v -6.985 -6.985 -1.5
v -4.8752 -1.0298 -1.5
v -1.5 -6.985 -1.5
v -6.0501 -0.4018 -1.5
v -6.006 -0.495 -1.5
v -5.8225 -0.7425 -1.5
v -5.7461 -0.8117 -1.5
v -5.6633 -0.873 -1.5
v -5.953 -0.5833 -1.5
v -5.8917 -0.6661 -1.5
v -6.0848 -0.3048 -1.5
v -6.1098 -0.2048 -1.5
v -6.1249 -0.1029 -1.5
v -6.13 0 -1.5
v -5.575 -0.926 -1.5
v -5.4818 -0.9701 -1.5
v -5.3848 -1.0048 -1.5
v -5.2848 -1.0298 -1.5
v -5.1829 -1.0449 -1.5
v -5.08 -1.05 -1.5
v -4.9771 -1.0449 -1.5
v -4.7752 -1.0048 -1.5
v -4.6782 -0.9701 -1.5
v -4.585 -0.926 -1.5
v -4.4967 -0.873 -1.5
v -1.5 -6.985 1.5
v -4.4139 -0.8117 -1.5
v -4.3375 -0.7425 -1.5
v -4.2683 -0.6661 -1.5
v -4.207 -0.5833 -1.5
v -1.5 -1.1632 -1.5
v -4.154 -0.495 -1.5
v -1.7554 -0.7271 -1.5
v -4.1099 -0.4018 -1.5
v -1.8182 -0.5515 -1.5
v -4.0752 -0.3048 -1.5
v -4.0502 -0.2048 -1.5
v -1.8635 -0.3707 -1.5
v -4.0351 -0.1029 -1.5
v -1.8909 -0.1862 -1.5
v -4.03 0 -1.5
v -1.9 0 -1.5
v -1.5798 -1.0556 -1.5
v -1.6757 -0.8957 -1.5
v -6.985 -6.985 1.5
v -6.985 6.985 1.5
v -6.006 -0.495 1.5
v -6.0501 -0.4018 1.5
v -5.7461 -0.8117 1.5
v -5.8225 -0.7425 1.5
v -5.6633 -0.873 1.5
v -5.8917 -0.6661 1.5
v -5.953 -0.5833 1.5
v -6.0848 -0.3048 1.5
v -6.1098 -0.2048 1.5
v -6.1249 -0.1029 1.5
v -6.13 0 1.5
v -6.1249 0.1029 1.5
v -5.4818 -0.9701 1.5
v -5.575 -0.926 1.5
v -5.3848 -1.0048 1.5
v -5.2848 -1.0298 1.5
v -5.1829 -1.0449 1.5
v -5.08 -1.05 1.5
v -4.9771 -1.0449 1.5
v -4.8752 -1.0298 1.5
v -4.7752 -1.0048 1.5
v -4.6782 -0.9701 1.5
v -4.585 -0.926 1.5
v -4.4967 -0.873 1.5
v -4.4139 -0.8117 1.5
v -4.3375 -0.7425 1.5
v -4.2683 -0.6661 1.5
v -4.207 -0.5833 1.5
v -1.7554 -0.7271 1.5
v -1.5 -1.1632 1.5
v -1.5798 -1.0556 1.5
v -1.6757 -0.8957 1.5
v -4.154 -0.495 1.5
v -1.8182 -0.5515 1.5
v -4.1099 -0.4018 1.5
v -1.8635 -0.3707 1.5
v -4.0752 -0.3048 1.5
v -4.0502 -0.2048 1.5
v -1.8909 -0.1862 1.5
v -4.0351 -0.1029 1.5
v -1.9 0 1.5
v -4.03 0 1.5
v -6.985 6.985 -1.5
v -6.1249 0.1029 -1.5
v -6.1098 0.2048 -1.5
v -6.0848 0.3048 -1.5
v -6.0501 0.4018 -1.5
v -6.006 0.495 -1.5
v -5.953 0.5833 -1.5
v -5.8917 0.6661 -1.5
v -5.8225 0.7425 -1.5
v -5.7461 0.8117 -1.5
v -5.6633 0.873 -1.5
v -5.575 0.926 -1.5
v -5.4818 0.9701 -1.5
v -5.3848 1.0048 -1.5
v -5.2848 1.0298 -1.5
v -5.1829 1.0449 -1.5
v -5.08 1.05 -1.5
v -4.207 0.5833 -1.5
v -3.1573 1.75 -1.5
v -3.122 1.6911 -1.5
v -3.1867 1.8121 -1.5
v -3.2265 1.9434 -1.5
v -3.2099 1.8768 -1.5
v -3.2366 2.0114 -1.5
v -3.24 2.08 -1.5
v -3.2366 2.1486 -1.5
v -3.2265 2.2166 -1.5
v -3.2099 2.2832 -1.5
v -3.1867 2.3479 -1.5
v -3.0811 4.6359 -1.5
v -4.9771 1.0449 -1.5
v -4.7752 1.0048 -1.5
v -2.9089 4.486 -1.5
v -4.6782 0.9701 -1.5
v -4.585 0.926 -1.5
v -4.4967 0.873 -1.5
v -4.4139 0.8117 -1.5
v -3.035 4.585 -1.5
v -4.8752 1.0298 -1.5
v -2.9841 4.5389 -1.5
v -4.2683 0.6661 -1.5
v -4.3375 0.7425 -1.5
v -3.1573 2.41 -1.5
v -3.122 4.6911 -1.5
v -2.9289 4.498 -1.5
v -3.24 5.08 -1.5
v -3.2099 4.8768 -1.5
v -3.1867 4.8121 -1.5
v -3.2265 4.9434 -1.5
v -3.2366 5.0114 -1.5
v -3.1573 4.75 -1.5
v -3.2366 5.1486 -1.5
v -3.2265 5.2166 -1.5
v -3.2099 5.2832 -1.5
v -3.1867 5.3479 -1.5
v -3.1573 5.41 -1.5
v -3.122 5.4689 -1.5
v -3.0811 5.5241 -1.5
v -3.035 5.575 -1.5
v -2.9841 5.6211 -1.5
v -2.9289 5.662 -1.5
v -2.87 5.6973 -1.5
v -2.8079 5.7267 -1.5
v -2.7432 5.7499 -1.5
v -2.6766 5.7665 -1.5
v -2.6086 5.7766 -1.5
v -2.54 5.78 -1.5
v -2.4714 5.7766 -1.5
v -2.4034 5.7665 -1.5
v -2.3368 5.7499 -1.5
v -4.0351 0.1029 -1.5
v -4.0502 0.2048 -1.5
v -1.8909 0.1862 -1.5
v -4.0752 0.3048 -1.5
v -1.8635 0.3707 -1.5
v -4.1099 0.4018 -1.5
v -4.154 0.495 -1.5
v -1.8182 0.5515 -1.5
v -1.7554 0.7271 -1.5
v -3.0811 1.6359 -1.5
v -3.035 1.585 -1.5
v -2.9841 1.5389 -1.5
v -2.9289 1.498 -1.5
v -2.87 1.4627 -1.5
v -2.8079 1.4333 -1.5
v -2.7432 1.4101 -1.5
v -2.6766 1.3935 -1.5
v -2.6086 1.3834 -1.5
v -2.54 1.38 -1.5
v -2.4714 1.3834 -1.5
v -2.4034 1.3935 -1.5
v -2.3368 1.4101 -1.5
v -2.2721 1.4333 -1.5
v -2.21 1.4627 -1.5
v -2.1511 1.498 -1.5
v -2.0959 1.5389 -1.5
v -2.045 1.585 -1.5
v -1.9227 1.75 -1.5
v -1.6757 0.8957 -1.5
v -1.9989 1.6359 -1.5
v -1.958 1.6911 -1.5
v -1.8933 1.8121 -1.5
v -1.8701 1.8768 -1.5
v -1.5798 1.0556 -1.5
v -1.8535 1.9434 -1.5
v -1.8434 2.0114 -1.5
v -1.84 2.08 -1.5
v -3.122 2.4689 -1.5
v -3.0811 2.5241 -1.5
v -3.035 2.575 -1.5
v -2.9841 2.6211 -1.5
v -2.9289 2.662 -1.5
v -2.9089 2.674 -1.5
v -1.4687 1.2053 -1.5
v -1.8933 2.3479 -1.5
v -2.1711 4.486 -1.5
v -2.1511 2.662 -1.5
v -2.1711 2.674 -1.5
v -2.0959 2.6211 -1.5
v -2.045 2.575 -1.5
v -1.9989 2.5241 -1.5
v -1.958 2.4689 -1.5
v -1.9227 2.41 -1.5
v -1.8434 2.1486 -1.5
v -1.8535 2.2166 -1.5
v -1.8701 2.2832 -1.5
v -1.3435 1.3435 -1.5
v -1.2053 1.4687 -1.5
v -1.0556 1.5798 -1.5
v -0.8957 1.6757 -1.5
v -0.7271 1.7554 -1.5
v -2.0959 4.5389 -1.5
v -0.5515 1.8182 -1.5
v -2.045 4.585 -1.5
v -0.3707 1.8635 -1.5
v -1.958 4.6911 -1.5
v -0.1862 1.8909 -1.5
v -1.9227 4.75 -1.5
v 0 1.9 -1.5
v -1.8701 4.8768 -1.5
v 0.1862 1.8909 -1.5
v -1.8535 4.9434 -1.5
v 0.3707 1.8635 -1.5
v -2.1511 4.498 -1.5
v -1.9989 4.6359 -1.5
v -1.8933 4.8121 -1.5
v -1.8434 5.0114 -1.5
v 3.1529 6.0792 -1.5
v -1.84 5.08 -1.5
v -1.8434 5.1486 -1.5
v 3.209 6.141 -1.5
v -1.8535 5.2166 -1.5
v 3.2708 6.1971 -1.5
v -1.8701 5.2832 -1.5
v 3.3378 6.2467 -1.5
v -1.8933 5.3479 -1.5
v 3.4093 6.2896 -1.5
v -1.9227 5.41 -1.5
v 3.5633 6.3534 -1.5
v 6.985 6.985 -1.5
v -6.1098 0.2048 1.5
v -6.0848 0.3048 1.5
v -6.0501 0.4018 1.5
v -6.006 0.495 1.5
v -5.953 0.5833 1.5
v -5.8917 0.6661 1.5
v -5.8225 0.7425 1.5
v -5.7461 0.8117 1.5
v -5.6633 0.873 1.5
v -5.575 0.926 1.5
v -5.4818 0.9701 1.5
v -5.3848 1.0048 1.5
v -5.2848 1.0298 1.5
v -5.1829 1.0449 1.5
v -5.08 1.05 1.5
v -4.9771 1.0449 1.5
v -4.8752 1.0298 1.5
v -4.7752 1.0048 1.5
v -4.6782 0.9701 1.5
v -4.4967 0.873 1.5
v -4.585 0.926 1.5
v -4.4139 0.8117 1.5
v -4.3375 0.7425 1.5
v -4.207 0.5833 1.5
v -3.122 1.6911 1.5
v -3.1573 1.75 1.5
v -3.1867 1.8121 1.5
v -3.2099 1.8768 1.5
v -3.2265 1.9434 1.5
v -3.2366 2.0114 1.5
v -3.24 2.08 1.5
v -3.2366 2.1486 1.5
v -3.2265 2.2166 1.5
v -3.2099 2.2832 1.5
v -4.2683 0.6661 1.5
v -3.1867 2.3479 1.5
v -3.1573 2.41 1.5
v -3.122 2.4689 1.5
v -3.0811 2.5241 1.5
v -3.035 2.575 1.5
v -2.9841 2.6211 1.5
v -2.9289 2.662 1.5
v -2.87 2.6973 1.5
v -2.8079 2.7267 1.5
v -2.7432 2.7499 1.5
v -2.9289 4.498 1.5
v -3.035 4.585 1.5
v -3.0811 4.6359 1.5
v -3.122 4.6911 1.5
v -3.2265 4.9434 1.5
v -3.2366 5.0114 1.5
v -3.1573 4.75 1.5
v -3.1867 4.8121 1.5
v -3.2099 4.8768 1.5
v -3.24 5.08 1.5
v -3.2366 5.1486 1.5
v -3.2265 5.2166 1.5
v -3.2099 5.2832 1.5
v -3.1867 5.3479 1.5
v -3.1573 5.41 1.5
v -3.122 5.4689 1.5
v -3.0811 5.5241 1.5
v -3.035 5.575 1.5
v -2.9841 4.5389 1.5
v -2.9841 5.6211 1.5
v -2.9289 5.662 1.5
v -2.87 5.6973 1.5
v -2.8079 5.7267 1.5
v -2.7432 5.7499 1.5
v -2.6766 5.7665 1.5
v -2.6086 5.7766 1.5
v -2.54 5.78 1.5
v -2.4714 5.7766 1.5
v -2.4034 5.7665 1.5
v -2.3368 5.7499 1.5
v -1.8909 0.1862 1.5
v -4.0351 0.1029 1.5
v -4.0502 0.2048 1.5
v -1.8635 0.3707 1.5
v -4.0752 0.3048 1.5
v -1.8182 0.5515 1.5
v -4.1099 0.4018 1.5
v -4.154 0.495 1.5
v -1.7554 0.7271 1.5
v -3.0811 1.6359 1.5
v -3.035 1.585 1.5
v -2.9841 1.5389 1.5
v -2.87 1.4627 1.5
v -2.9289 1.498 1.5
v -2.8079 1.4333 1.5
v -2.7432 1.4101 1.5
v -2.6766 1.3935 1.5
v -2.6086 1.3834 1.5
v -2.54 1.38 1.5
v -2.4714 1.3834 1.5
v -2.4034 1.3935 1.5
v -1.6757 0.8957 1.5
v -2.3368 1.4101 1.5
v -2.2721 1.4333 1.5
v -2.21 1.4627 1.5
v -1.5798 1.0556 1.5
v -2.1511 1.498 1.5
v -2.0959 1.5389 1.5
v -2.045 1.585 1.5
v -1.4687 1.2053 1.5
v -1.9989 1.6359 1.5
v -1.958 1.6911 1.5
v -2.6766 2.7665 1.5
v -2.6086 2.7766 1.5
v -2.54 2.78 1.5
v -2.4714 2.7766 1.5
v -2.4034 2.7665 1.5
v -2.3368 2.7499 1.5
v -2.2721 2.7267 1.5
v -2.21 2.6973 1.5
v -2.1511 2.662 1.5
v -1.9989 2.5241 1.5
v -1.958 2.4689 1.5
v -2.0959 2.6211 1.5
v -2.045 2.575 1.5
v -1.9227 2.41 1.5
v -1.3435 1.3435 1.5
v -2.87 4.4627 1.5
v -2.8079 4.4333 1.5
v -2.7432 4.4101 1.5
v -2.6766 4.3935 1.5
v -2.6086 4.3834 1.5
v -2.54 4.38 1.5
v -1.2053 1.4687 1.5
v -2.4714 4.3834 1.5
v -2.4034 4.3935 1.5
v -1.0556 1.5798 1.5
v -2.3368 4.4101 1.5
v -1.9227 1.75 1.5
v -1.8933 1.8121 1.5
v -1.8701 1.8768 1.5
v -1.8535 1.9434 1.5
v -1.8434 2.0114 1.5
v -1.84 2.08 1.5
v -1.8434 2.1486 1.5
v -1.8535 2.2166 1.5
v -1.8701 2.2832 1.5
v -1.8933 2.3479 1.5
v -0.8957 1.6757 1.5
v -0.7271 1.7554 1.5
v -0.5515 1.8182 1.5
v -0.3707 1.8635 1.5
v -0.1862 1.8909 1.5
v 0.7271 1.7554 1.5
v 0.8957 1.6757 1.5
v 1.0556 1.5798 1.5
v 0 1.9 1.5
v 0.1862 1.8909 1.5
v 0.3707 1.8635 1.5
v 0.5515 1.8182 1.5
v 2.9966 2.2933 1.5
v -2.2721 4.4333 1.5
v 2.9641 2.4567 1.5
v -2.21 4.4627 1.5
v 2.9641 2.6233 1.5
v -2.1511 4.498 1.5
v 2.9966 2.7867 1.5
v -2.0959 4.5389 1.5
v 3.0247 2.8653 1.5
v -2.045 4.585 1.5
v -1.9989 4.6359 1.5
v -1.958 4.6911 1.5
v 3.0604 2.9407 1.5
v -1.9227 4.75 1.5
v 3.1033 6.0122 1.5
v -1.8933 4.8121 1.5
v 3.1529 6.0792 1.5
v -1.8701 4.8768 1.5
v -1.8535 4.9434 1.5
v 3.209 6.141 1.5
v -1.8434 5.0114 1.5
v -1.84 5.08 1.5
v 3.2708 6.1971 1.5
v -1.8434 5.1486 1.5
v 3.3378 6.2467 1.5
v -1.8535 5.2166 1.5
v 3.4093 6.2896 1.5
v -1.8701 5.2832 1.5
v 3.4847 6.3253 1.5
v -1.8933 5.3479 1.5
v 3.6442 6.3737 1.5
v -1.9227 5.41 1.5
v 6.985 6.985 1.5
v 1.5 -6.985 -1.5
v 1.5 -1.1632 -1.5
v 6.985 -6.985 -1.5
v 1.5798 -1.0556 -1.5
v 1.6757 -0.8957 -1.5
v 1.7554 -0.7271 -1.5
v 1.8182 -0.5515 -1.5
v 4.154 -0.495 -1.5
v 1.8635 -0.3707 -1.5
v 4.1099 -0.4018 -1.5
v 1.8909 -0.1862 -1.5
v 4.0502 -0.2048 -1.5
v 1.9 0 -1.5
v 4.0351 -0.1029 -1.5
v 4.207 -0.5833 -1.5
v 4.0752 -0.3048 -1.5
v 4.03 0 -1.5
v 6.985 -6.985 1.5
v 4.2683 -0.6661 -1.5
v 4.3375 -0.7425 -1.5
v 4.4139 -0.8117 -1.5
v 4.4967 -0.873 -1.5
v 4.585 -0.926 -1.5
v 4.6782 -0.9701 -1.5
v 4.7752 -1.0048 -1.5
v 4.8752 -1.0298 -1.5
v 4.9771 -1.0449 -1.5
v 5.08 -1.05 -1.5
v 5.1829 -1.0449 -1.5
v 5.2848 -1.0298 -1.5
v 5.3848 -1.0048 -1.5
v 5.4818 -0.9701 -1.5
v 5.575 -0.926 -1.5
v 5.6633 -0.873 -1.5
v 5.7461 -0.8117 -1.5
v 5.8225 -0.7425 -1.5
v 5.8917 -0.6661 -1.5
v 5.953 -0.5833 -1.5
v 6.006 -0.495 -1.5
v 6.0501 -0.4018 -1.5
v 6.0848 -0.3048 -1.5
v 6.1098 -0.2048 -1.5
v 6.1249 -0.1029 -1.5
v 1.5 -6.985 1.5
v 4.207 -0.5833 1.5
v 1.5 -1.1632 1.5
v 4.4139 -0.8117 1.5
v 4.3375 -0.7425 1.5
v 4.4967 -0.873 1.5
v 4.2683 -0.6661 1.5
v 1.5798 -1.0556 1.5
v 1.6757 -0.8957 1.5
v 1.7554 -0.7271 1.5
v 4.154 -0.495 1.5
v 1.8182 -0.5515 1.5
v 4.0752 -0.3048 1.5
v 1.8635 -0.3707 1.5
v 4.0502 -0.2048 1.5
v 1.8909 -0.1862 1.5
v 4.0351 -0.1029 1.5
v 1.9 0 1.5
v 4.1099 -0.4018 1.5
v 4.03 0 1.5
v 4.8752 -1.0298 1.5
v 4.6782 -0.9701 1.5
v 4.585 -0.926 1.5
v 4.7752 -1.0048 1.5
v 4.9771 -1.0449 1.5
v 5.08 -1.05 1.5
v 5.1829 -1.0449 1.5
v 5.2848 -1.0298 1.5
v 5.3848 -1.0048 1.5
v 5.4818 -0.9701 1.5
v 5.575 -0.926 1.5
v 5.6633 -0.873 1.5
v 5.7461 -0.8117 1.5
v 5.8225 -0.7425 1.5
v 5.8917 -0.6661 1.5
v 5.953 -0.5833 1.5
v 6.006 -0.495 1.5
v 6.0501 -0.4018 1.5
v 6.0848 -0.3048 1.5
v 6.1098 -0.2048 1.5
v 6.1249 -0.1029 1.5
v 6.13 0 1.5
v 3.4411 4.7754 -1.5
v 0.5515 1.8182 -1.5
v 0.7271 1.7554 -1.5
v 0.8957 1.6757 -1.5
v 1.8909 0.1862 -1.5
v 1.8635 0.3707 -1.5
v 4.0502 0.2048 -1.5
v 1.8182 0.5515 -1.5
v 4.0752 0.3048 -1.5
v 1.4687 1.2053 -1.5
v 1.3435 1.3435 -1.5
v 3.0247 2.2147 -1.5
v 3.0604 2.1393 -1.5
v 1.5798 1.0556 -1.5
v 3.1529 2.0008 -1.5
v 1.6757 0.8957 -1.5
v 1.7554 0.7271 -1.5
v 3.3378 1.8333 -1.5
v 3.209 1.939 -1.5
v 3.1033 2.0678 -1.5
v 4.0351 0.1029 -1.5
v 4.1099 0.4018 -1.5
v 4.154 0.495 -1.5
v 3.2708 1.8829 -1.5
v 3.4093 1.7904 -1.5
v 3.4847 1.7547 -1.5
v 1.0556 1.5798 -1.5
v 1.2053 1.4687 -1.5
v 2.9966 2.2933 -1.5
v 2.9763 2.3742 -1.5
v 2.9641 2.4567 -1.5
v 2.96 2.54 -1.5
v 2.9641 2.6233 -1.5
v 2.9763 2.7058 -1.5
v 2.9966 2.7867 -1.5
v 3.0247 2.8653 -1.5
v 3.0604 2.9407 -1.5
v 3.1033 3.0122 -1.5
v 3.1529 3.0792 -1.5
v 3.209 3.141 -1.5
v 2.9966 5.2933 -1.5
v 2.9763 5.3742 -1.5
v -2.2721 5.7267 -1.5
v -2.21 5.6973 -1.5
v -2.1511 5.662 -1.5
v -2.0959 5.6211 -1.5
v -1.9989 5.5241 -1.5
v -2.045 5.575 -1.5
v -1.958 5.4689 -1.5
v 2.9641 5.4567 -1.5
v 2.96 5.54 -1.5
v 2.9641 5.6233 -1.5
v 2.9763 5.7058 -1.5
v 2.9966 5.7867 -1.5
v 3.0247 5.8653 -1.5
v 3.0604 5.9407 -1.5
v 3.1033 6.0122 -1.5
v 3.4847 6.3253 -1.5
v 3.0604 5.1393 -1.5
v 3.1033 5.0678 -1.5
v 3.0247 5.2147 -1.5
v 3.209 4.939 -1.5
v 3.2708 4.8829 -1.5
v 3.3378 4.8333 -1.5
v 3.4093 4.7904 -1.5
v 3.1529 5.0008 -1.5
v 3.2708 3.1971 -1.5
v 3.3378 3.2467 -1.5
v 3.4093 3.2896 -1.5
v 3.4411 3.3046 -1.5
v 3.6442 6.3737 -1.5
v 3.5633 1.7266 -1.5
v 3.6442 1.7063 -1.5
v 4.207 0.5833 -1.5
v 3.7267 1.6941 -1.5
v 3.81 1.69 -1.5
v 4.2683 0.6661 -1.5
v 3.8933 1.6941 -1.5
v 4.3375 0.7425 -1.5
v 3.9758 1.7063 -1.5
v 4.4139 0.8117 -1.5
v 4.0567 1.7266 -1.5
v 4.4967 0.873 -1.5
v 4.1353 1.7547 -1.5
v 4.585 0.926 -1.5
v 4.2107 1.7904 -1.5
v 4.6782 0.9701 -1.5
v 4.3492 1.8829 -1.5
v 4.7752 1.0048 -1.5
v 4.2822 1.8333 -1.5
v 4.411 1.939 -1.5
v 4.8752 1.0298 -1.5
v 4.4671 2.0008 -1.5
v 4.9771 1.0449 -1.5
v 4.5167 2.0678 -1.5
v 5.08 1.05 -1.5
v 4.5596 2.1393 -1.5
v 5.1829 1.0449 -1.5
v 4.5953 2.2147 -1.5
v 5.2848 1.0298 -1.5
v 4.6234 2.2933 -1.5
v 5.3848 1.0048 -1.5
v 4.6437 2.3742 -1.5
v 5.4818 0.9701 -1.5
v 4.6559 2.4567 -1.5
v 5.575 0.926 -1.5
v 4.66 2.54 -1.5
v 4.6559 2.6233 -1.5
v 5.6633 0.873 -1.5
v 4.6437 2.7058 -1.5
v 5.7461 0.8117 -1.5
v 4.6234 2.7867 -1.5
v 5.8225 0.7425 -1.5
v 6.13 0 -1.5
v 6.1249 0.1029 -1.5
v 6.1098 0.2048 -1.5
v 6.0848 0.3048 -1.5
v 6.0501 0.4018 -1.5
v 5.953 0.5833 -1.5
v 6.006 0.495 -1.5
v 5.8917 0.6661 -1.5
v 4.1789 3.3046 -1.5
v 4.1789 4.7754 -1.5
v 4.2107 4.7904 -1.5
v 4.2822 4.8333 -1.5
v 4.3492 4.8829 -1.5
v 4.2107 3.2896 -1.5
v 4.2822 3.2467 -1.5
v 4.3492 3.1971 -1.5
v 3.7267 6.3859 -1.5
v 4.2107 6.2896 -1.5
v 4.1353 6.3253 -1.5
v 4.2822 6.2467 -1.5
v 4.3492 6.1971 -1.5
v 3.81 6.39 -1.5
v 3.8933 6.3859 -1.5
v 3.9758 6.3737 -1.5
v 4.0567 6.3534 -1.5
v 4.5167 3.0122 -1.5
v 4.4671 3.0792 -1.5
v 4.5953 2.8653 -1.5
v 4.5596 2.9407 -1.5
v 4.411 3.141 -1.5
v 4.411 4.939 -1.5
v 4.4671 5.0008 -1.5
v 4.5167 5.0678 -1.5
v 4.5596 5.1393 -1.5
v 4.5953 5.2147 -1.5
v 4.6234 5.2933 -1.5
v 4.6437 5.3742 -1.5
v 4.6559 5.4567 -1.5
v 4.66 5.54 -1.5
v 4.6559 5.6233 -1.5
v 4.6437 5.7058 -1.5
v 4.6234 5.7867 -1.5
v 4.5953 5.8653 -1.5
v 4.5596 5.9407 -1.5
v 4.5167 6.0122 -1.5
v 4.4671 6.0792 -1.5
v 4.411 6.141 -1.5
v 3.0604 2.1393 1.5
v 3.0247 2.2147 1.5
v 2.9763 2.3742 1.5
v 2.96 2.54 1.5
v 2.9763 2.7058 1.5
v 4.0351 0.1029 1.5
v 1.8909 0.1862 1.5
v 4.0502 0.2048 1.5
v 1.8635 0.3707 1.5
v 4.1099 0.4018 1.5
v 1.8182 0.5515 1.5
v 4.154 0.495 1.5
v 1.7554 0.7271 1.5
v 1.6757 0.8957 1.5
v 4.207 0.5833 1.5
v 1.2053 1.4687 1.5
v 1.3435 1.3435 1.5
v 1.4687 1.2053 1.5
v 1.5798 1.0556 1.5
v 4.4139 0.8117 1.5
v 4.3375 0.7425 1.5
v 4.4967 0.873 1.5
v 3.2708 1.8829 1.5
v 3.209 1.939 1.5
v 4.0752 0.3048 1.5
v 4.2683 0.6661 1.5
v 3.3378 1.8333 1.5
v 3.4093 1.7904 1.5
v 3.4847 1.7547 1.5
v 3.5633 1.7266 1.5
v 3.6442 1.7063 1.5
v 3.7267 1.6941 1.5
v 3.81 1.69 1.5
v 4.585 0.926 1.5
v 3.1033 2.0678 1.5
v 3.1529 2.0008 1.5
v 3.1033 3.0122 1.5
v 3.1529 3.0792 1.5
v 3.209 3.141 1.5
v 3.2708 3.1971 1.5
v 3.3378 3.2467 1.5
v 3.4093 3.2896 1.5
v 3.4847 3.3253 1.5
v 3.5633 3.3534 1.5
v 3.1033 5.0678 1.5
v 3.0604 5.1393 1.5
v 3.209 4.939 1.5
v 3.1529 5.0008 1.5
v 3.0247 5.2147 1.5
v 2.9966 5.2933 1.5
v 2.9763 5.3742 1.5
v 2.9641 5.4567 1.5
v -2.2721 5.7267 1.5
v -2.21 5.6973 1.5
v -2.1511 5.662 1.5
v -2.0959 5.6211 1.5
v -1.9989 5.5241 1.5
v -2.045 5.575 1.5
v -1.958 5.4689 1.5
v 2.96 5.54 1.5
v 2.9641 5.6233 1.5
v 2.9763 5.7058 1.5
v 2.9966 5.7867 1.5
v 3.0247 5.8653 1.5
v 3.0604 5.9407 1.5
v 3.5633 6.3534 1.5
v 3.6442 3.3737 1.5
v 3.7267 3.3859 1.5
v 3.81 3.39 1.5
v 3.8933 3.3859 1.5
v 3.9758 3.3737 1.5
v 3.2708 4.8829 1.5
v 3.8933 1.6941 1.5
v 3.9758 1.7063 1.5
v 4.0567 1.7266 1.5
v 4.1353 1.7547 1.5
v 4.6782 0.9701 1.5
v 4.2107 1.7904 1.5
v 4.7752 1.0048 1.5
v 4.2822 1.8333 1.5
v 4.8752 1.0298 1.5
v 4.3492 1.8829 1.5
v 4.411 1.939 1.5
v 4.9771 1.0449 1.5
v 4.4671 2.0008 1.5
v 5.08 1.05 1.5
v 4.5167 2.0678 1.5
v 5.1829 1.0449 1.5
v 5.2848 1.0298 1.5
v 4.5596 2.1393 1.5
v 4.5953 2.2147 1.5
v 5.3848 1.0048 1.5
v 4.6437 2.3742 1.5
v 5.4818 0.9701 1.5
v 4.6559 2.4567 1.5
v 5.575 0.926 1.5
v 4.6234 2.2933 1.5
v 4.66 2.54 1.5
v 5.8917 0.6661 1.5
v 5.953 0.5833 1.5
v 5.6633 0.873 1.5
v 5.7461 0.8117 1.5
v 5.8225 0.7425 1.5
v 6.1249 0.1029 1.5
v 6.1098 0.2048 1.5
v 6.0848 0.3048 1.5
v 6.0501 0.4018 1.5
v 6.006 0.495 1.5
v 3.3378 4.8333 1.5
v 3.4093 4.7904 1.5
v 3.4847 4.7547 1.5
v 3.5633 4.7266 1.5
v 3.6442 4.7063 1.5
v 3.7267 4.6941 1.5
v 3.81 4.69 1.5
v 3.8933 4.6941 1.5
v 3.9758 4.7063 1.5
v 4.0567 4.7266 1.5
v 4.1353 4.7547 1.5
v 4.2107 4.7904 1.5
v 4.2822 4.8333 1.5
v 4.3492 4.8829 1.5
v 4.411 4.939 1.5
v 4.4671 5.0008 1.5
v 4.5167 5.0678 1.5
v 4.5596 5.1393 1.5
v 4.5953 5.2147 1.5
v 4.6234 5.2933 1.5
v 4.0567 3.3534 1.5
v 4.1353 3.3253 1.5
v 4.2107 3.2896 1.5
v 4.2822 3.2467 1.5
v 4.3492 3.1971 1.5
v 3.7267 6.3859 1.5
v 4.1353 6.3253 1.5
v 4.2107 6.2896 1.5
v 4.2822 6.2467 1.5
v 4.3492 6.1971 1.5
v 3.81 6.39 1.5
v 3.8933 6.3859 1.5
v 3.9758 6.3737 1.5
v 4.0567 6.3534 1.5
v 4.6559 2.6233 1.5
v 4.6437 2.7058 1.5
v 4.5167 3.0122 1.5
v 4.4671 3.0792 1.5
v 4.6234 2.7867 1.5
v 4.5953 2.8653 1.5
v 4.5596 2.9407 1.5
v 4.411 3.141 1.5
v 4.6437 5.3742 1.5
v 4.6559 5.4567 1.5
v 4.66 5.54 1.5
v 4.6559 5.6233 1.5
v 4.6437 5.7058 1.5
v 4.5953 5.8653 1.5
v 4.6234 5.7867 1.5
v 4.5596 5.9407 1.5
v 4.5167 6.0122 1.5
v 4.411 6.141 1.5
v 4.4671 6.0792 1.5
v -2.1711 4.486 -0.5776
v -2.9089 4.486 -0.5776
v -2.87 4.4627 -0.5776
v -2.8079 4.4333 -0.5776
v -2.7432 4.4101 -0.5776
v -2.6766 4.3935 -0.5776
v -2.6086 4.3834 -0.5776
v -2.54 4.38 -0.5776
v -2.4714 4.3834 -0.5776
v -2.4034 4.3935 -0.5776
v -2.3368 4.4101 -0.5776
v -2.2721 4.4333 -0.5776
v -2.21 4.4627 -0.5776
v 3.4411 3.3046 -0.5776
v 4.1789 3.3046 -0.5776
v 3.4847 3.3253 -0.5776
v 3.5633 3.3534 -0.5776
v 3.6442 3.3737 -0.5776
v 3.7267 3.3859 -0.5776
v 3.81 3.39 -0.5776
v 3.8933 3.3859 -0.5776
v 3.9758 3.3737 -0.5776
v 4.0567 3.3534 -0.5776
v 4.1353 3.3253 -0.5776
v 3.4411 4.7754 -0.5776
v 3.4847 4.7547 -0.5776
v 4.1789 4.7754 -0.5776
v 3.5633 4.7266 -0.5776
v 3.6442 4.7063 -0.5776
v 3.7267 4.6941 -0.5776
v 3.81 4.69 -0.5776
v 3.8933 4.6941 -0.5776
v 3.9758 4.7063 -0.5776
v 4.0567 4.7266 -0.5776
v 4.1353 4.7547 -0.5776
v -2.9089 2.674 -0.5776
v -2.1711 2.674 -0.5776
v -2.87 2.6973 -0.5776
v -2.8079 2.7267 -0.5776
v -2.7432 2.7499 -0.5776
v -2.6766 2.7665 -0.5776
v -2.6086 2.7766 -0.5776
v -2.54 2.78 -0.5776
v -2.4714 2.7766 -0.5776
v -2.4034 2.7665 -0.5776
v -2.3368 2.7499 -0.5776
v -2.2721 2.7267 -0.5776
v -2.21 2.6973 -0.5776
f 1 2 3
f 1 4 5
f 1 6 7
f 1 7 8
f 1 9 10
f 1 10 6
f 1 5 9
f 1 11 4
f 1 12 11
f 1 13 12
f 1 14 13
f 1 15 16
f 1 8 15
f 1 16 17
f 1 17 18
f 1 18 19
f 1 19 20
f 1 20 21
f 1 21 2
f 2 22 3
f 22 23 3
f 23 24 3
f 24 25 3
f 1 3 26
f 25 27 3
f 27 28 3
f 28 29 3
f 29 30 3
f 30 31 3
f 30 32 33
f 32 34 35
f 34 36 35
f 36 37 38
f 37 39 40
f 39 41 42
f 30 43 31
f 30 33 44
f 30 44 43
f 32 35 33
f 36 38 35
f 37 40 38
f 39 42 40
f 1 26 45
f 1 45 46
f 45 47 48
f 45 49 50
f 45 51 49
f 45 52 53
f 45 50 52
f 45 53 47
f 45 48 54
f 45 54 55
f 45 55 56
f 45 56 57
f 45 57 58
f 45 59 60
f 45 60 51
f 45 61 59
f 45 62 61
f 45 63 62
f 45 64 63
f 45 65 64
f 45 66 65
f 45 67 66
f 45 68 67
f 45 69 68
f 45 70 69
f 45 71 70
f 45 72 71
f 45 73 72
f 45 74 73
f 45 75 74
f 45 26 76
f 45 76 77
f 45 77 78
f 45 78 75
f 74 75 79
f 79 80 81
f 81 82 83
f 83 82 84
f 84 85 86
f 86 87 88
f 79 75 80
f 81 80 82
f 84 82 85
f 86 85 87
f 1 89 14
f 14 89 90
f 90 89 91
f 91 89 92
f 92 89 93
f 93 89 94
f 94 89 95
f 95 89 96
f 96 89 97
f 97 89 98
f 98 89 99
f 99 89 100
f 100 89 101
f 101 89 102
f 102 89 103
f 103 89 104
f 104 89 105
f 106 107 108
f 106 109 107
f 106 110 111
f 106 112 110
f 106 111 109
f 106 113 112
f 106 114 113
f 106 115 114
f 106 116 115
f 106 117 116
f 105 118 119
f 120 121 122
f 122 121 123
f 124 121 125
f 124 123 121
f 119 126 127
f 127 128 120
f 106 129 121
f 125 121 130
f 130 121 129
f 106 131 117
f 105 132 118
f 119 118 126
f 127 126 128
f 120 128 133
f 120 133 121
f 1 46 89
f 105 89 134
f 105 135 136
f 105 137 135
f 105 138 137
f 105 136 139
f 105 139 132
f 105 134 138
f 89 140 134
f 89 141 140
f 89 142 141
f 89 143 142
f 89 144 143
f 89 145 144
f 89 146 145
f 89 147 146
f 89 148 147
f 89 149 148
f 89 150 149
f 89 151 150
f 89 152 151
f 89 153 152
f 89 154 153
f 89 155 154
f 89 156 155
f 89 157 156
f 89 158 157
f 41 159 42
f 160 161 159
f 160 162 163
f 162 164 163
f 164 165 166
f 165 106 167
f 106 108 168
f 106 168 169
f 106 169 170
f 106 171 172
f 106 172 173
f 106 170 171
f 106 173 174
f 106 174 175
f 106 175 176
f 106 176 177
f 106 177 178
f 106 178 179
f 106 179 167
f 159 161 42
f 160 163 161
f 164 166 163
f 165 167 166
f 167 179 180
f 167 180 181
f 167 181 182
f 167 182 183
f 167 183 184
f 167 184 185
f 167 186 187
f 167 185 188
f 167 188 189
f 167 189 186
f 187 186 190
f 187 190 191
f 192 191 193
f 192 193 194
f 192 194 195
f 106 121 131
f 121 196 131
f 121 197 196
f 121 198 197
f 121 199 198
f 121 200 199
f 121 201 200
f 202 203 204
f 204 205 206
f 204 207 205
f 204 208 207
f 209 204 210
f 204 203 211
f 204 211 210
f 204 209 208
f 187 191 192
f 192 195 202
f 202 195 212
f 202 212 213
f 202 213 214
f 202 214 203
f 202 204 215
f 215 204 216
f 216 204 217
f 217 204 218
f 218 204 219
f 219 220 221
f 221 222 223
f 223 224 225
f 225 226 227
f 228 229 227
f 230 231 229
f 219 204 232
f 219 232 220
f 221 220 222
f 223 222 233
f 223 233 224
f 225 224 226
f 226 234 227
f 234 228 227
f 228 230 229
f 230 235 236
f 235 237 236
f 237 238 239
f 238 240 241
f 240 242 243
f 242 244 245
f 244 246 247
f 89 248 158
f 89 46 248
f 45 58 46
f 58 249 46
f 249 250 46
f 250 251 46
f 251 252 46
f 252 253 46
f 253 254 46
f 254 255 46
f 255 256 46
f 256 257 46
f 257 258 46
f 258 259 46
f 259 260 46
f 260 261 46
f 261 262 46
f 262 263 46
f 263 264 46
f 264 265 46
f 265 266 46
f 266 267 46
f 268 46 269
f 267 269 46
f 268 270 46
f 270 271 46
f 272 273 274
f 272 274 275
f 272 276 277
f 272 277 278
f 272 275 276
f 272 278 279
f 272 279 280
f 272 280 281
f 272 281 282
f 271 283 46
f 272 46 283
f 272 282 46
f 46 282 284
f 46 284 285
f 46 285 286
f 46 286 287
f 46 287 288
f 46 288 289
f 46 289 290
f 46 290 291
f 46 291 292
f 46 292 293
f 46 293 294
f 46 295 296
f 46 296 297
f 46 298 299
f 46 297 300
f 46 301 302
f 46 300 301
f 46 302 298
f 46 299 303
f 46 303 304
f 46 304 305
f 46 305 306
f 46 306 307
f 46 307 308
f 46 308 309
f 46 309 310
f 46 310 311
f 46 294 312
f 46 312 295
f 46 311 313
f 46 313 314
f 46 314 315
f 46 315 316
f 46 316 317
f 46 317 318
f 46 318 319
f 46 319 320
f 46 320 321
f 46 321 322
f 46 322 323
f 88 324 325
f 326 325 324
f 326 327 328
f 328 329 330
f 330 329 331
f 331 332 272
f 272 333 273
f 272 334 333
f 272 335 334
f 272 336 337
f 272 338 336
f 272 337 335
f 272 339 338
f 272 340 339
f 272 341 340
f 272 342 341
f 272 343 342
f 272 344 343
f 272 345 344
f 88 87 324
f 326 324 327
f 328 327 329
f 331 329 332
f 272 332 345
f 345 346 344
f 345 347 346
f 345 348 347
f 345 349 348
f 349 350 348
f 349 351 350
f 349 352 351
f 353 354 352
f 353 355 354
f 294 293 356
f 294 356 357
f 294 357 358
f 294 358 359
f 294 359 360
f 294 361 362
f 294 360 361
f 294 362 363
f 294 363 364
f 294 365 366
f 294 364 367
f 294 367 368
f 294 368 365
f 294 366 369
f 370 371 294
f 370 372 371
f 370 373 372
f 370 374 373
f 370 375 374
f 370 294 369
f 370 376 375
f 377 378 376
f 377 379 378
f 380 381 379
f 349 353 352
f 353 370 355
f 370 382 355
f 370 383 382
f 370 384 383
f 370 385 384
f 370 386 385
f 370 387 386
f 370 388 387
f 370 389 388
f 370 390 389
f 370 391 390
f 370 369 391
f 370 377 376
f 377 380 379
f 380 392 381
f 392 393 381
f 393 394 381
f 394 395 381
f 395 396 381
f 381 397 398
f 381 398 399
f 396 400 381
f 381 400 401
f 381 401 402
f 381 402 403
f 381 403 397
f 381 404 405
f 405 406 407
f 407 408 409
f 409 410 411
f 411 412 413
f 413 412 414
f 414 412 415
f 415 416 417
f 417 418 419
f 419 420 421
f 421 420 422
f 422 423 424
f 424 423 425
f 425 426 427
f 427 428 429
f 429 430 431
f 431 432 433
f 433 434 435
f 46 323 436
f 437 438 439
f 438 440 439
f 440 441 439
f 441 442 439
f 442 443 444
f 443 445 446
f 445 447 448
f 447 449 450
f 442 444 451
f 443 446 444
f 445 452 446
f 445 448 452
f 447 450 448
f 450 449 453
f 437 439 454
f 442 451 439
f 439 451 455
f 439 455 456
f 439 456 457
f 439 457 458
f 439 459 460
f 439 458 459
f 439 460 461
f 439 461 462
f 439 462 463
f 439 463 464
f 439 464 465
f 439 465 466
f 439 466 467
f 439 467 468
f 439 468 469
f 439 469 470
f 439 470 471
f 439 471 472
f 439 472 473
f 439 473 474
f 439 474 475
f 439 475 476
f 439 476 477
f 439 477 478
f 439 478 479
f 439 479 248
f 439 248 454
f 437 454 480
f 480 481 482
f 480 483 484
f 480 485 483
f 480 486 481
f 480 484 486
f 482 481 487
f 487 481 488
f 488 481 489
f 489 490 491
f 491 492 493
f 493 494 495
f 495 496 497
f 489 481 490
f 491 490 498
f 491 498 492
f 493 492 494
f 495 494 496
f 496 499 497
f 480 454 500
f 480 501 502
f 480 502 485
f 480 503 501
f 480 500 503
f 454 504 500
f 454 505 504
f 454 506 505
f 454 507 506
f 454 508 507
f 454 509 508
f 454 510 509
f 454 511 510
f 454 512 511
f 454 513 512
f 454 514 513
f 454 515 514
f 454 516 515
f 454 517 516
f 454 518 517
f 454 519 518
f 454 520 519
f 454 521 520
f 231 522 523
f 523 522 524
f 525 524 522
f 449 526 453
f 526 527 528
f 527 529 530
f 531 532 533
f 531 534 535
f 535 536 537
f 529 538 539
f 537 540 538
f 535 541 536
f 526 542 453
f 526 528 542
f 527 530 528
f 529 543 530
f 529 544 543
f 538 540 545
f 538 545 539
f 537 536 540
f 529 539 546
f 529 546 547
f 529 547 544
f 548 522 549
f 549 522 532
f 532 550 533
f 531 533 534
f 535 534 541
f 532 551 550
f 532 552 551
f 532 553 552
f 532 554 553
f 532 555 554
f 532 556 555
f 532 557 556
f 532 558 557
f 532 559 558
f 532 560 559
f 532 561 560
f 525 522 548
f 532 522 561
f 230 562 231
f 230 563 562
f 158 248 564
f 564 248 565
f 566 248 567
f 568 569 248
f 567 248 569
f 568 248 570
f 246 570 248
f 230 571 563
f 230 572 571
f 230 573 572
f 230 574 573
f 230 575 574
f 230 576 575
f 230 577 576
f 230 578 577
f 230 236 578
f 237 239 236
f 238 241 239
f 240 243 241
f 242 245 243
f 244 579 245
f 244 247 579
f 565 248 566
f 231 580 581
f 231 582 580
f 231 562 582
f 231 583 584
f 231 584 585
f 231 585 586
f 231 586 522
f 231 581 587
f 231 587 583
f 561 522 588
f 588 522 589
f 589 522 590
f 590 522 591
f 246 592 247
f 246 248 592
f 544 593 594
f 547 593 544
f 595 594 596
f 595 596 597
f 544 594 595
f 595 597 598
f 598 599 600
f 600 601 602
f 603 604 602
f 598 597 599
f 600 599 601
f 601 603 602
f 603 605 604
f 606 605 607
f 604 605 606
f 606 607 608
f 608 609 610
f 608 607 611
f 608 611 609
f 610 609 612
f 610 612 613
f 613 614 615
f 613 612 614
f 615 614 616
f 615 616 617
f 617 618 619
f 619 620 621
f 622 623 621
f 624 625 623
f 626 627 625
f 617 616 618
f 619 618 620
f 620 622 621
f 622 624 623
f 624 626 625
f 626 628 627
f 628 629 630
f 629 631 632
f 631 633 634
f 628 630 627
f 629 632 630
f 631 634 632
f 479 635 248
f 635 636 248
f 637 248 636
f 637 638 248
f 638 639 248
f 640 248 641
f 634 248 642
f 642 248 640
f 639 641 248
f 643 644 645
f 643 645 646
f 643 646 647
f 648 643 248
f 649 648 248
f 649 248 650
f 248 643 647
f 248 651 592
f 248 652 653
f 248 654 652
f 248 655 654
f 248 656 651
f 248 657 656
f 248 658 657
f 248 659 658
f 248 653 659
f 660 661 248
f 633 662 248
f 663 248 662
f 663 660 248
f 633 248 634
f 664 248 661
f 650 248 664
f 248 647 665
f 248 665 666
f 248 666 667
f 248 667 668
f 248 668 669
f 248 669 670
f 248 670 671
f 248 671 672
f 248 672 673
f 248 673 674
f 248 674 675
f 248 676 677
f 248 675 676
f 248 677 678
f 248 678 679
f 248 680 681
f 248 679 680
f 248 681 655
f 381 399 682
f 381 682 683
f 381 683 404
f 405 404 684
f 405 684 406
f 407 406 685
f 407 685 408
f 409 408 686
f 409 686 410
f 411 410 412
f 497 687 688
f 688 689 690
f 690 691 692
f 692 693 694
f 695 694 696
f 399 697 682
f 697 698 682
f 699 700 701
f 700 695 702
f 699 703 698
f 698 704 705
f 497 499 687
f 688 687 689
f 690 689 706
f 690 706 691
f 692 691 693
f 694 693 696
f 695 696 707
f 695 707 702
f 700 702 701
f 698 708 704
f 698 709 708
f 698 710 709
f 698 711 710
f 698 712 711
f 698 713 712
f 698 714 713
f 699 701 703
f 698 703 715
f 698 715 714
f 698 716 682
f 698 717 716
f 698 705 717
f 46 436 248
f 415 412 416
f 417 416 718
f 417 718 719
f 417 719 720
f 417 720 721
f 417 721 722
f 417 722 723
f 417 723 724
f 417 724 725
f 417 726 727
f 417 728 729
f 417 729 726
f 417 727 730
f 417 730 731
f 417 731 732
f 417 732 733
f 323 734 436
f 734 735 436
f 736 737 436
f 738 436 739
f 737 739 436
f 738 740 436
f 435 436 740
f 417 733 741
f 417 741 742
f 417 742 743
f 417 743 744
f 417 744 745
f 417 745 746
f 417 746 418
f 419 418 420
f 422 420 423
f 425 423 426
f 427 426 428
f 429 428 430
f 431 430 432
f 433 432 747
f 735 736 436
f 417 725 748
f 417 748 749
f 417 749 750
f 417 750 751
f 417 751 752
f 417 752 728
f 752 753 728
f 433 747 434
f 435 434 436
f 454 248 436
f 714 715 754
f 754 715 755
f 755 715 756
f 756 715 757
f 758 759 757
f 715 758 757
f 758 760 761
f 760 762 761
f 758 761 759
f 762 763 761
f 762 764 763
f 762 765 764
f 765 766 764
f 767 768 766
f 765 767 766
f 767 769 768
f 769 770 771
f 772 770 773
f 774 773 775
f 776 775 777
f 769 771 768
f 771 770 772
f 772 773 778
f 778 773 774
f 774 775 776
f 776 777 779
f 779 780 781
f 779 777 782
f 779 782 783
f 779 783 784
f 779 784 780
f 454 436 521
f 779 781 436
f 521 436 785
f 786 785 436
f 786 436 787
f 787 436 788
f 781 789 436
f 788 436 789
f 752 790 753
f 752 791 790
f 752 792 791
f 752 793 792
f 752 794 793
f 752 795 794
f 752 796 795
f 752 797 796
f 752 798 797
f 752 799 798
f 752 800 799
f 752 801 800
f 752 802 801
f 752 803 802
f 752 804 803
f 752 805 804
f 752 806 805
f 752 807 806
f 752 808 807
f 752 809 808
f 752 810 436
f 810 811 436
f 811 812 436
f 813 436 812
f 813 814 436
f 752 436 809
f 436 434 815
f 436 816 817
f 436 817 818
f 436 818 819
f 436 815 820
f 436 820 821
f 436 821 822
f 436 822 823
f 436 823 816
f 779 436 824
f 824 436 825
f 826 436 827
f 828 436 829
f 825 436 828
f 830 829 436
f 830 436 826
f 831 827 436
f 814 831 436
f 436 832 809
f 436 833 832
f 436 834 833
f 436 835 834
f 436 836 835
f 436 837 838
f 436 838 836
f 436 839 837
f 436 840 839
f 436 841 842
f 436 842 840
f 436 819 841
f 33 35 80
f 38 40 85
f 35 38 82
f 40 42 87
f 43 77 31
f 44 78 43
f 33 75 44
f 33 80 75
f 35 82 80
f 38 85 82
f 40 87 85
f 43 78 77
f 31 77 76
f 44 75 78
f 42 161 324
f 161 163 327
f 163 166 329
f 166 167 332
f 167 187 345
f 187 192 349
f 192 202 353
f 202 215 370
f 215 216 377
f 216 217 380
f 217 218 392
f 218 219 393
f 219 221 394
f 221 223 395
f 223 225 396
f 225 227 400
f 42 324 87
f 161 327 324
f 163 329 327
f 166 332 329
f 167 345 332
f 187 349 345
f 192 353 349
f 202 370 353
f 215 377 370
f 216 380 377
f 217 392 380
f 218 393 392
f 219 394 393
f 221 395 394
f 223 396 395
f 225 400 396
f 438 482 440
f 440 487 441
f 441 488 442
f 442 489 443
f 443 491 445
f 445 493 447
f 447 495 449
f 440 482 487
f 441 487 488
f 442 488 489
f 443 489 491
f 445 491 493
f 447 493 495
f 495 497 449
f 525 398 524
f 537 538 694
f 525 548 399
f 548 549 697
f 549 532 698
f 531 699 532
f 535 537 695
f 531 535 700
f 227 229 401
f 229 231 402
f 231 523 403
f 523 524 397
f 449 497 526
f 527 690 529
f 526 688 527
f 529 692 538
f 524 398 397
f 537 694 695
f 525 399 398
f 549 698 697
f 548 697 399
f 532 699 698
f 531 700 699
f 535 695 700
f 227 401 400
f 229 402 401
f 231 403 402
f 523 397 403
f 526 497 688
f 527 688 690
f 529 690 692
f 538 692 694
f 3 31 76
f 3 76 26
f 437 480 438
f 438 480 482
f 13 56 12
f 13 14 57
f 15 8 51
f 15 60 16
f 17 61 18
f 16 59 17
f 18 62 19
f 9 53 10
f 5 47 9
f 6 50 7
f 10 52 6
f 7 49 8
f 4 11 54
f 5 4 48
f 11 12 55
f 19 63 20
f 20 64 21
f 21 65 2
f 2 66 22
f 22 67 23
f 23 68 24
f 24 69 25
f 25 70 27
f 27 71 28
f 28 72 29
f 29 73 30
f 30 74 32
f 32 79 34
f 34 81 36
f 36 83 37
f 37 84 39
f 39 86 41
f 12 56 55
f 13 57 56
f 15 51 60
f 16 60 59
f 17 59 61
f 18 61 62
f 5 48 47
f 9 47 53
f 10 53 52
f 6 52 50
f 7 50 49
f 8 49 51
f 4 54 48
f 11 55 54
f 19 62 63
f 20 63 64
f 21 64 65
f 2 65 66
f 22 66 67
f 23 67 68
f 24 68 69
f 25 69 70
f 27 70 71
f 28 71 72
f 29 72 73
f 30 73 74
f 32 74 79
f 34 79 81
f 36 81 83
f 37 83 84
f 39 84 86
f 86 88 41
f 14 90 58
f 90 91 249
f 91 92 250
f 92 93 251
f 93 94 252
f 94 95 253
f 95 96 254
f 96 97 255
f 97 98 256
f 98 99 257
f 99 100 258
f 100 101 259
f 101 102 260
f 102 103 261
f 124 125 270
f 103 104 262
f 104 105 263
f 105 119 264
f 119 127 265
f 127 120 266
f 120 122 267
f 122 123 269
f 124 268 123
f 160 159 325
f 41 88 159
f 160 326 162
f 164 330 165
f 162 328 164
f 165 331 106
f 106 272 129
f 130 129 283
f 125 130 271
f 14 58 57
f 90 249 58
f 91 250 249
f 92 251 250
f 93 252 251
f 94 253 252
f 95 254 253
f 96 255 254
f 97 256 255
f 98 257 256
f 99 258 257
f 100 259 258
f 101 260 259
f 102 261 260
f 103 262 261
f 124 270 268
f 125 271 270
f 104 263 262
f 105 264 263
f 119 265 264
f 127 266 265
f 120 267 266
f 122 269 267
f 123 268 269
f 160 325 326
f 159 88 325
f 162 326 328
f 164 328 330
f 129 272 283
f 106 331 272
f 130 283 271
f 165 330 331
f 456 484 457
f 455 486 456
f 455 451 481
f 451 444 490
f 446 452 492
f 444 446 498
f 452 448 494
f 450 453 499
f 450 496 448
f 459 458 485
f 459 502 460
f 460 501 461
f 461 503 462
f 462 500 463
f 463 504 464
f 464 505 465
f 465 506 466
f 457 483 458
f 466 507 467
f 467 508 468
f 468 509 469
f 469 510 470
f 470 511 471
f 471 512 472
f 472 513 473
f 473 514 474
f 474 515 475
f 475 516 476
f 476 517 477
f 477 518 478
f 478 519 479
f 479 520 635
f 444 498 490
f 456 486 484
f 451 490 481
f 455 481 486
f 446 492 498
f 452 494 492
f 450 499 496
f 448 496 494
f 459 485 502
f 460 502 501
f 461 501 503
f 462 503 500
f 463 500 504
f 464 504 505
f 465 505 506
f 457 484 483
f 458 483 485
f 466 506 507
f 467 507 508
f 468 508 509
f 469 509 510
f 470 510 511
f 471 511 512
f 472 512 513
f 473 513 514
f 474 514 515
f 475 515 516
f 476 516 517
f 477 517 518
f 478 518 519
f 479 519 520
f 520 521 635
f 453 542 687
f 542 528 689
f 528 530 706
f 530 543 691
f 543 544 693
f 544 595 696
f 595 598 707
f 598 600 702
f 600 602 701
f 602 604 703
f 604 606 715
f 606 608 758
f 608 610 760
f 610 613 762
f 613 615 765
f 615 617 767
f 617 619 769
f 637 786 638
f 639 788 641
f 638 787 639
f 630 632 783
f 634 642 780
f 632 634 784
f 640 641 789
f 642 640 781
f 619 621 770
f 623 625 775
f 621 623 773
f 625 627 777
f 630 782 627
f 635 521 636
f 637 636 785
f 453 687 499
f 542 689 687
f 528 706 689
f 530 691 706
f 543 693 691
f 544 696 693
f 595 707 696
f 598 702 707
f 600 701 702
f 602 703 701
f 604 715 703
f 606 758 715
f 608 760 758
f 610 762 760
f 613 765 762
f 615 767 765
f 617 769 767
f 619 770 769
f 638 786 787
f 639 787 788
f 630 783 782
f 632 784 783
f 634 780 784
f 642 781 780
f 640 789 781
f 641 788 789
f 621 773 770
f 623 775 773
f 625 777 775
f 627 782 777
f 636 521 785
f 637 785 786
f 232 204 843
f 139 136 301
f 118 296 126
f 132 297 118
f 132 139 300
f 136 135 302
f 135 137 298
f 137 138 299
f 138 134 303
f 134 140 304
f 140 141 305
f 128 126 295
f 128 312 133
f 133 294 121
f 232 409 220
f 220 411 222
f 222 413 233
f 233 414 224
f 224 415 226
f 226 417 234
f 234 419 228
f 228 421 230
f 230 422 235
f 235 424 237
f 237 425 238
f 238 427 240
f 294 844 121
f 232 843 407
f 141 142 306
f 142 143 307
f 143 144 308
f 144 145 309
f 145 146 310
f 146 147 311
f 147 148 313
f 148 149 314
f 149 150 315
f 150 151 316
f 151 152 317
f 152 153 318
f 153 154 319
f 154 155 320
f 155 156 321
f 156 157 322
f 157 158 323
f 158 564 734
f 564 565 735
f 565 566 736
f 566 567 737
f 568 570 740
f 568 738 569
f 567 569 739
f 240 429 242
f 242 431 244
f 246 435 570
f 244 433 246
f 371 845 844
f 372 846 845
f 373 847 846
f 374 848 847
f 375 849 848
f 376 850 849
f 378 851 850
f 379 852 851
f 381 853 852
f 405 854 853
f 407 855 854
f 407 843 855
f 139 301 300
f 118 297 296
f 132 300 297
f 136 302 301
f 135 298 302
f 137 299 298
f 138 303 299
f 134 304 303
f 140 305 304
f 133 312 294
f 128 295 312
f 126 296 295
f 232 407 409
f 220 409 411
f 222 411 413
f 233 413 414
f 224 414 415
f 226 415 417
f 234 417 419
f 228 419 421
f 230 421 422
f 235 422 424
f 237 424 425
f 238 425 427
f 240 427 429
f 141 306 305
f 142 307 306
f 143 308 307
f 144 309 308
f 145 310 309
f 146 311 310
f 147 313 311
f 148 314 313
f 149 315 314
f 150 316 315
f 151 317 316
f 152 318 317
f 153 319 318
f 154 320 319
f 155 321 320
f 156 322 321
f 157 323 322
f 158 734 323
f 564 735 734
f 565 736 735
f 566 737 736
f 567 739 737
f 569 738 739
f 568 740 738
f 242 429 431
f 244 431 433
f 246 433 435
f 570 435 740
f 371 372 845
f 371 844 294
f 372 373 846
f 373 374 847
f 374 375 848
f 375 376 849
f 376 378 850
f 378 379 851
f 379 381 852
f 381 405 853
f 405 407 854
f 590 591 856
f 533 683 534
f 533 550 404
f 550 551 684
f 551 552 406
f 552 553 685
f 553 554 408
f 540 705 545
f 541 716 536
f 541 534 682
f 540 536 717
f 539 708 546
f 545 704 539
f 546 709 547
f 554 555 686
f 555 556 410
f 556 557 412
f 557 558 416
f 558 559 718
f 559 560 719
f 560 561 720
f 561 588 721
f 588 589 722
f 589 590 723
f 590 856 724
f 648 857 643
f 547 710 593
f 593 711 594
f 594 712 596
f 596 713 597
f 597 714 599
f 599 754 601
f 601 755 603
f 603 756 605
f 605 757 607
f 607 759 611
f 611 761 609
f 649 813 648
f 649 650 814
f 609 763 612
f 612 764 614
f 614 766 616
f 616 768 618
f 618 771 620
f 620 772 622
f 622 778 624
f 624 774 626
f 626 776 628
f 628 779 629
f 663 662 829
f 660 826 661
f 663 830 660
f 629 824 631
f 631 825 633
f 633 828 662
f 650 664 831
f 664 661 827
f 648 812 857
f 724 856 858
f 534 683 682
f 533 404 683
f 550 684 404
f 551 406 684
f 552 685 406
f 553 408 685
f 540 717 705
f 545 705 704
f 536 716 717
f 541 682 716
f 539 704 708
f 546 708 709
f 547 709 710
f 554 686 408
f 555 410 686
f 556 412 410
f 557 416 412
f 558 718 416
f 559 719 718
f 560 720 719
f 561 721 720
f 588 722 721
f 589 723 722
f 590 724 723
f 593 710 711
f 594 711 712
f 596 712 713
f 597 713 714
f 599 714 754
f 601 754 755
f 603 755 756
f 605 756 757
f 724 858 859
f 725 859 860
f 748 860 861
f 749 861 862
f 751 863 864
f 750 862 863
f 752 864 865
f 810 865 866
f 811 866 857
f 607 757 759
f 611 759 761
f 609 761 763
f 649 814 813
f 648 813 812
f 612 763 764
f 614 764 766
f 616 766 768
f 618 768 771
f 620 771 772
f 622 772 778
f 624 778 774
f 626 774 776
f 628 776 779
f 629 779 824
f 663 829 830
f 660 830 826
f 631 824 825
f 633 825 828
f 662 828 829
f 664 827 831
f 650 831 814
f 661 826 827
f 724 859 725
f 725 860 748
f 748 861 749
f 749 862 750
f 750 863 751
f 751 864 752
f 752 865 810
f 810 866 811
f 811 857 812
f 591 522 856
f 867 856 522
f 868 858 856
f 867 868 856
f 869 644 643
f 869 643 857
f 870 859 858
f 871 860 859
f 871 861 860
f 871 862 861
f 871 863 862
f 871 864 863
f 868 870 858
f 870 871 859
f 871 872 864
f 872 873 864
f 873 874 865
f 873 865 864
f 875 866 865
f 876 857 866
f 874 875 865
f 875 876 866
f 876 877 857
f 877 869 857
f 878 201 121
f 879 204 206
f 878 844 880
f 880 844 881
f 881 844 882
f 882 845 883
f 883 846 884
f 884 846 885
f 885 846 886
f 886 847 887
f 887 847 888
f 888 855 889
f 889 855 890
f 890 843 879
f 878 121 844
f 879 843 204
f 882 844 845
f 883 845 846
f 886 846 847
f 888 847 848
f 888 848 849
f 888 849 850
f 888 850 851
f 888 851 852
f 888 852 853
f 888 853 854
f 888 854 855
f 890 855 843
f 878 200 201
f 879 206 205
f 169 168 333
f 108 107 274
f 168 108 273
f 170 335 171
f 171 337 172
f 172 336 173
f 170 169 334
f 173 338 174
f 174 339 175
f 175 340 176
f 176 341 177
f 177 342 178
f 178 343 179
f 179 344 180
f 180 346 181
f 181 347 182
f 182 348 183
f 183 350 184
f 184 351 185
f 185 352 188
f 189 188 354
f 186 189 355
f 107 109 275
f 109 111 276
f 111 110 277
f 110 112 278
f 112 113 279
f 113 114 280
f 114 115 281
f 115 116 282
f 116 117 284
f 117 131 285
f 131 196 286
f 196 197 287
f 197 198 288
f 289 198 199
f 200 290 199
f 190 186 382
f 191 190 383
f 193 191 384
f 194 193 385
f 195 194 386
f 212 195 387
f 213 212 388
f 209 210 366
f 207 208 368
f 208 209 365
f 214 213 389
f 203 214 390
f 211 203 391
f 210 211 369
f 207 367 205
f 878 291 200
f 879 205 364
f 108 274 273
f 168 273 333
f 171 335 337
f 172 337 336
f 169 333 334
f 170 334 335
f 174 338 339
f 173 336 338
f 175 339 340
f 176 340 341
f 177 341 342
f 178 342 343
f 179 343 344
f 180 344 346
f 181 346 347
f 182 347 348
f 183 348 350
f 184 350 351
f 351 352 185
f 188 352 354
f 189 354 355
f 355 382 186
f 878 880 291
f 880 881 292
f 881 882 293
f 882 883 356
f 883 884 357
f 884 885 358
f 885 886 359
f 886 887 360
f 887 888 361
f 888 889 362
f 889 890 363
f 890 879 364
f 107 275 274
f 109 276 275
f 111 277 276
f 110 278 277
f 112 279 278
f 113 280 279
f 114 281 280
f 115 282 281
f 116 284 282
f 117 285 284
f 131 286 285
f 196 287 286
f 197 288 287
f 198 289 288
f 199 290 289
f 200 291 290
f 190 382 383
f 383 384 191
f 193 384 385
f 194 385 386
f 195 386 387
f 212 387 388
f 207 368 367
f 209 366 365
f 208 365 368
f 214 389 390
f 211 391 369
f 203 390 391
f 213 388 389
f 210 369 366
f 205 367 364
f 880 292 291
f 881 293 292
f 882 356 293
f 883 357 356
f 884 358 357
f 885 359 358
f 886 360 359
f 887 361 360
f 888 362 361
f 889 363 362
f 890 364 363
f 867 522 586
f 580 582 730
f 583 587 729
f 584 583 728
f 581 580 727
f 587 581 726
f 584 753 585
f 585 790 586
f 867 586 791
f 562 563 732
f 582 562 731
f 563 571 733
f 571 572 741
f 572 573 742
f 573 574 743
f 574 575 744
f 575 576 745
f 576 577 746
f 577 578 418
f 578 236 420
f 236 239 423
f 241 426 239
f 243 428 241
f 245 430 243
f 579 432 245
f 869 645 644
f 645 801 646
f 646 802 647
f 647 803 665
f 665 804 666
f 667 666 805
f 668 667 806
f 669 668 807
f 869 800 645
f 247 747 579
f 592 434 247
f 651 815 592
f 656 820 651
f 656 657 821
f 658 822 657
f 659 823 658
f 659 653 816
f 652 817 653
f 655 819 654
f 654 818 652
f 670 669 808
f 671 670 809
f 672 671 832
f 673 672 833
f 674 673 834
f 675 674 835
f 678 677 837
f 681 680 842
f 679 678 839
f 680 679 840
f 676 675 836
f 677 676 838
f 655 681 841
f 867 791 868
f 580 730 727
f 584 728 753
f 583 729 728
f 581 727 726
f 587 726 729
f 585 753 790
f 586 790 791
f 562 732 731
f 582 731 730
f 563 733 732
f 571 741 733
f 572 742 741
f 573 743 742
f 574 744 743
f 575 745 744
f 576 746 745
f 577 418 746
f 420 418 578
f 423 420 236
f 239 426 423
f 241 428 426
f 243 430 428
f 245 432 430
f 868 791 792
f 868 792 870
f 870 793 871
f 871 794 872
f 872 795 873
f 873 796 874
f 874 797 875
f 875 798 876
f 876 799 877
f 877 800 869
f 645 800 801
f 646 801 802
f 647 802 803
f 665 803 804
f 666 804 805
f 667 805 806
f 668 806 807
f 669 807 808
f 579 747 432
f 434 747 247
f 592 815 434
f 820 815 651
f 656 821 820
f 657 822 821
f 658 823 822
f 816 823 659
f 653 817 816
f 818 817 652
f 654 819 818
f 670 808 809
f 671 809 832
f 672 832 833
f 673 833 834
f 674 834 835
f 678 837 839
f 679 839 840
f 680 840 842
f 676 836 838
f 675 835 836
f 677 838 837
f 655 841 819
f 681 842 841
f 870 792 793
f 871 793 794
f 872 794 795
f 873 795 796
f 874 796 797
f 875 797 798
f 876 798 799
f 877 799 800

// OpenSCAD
/*
  Solderless Hot Swap Socket 

  HSS Diode Holder
  for mechanical keyboards
*/

$fn = 64;
grid = 1.27;

diode_gauge_mm = 0.508;
wire_gauge_mm = 0.559;

pin2 = [-2*grid, 4*grid, 1.4];
pin1 = [3*grid, 2*grid, 1.7];

stem = [0, 0, 3.80];
peg1 = [-4*grid, 0, 2.1];
peg2 = [4*grid, 0, 2.1];
base = [11*grid, 11*grid, 3.0]; //H originale 3.5

diode_dia = diode_gauge_mm * 0.98;
wire_dia = wire_gauge_mm * 1.1;

diode_angle = -6;

hss_wired();
// diode_mock();
module hss_wired() {
    difference(){
        make_body(false);
        pin_wire_slots();
    }
}

// Switch Pins
module hss_diode() {
    difference(){
        make_body();
        
        left_pin_wire_slots();

        right_pin_wire_slots();

        diode_slot();
    }
}
        
        

module pin_wire_slots(){
    translate([pin1.x, 3*grid, -base.z/2])
     cube([1.2*wire_dia, 2.5*grid, 3*wire_dia], center = true);

    translate([pin2.x, 3*grid, -base.z/2])
     cube([1.2*wire_dia, 2.5*grid, 3*wire_dia], center = true);

    translate([pin2.x, pin2.y - 3, 0])
     cylinder(h=base.z*2, d=pin2[2], center = true);
    
    translate([pin1.x, pin1.y + 3, 0])
     cylinder(h=base.z*2, d=pin1[2], center = true);
}




module make_body(side_slot = true){
    difference(){
        translate([0, 0, 0]){
            cube([base.x, base.y, base.z], center = true);
        }

        // Side Slots for removal
        if (side_slot)
        {
        translate([7.75, 0, 0])
            rotate([0, 45, 0])
                cube([2, 20, 2], center = true);

        translate([-7.75, 0, 0])
            rotate([0, 45, 0])
                cube([2, 20, 2], center = true);

        translate([0, 7.75, 0])
            rotate([45, 0, 0])
                cube([20, 2, 2], center = true);

        translate([0, -7.75, 0])
            rotate([45, 0, 0])
                cube([20, 2, 2], center = true);
        }
        
        // Main Stem Clamp
        translate([stem.x, stem.y, 0]){
            cylinder(h=base.z*2, d=stem[2], center = true);
        }

        translate([0, -5, 0]){
            cube([3, 10, base.z*2], center = true);
        }

        // PCB Mount Pegs
        translate([peg1.x, peg1.y, 0]){
            cylinder(h=base.z*2, d=peg1[2], center = true);
        }

        translate([peg2.x, peg2.y, 0]){
            cylinder(h=base.z*2, d=peg2[2], center = true);
        }

        // Switch Pins
        translate([pin2.x, pin2.y, 0]){
            cylinder(h=base.z*2, d=pin2[2], center = true);
        }

        translate([pin1.x, pin1.y, 0]){
            cylinder(h=base.z*2, d=pin1[2], center = true);
        }

    }
}

module left_pin_wire_slots(){
    // Diode Pin Wire Channels
    translate([-2*grid, 5*grid, 0])
        cube([1.5*diode_dia, 3, base.z*2], center = true);

    translate([-4*grid, 4.5*grid, -base.z/2])
        cube([5, 1.25*diode_dia, 3*diode_dia], center = true);

    translate([-5.25*grid, 4.5*grid, 0])
        cube([1, 1.25*diode_dia, base.z*2], center = true);

    translate([0, -4*grid, base.z/2])
        cube([20, wire_dia, base.z], center = true);
    
    translate([-5.25*grid, -4*grid, 0])
        cube([1, wire_dia, base.z*2], center = true);
    
    translate([-4*grid, -4*grid, -base.z/2])
        cube([4, wire_dia, 3*diode_dia], center = true);

}

module right_pin_wire_slots(){
    translate([pin1.x, 4*grid, -base.z/2])
        cube([1.2*wire_dia, 4*grid, 3*wire_dia], center = true);
    translate([pin1.x, 5.5*grid, 0])
        cube([1.2*wire_dia, 2, base.z], center = true);
}

module diode_slot(){
    union(){
        // Diode Body + Other Leg
        translate([-2.45*grid, -1.5*grid, -0.75])
            rotate([0, 0, diode_angle]){
                cube([2.0, 3.5, 2.1], center = true);
            }
        translate([-2.45*grid, -1.5*grid, -base.z/2])
            rotate([0, 0, diode_angle]){
                translate([0, 2, 0])
                    cube([diode_dia, 11, 2.5], center = true);
                translate([0, -3.25, 0])
                    cylinder(h=2.5, d=1.75, center = true);
            }
    }
}

module diode_mock(){
    translate([-2.45*grid, -1.5*grid, -0.75])
        rotate([0, 0, diode_angle])
            rotate([90, 0, 0]){
                cylinder(h=3.2, d=2, center = true);
                cylinder(h=100, d=diode_dia, center = true);
            }
}
